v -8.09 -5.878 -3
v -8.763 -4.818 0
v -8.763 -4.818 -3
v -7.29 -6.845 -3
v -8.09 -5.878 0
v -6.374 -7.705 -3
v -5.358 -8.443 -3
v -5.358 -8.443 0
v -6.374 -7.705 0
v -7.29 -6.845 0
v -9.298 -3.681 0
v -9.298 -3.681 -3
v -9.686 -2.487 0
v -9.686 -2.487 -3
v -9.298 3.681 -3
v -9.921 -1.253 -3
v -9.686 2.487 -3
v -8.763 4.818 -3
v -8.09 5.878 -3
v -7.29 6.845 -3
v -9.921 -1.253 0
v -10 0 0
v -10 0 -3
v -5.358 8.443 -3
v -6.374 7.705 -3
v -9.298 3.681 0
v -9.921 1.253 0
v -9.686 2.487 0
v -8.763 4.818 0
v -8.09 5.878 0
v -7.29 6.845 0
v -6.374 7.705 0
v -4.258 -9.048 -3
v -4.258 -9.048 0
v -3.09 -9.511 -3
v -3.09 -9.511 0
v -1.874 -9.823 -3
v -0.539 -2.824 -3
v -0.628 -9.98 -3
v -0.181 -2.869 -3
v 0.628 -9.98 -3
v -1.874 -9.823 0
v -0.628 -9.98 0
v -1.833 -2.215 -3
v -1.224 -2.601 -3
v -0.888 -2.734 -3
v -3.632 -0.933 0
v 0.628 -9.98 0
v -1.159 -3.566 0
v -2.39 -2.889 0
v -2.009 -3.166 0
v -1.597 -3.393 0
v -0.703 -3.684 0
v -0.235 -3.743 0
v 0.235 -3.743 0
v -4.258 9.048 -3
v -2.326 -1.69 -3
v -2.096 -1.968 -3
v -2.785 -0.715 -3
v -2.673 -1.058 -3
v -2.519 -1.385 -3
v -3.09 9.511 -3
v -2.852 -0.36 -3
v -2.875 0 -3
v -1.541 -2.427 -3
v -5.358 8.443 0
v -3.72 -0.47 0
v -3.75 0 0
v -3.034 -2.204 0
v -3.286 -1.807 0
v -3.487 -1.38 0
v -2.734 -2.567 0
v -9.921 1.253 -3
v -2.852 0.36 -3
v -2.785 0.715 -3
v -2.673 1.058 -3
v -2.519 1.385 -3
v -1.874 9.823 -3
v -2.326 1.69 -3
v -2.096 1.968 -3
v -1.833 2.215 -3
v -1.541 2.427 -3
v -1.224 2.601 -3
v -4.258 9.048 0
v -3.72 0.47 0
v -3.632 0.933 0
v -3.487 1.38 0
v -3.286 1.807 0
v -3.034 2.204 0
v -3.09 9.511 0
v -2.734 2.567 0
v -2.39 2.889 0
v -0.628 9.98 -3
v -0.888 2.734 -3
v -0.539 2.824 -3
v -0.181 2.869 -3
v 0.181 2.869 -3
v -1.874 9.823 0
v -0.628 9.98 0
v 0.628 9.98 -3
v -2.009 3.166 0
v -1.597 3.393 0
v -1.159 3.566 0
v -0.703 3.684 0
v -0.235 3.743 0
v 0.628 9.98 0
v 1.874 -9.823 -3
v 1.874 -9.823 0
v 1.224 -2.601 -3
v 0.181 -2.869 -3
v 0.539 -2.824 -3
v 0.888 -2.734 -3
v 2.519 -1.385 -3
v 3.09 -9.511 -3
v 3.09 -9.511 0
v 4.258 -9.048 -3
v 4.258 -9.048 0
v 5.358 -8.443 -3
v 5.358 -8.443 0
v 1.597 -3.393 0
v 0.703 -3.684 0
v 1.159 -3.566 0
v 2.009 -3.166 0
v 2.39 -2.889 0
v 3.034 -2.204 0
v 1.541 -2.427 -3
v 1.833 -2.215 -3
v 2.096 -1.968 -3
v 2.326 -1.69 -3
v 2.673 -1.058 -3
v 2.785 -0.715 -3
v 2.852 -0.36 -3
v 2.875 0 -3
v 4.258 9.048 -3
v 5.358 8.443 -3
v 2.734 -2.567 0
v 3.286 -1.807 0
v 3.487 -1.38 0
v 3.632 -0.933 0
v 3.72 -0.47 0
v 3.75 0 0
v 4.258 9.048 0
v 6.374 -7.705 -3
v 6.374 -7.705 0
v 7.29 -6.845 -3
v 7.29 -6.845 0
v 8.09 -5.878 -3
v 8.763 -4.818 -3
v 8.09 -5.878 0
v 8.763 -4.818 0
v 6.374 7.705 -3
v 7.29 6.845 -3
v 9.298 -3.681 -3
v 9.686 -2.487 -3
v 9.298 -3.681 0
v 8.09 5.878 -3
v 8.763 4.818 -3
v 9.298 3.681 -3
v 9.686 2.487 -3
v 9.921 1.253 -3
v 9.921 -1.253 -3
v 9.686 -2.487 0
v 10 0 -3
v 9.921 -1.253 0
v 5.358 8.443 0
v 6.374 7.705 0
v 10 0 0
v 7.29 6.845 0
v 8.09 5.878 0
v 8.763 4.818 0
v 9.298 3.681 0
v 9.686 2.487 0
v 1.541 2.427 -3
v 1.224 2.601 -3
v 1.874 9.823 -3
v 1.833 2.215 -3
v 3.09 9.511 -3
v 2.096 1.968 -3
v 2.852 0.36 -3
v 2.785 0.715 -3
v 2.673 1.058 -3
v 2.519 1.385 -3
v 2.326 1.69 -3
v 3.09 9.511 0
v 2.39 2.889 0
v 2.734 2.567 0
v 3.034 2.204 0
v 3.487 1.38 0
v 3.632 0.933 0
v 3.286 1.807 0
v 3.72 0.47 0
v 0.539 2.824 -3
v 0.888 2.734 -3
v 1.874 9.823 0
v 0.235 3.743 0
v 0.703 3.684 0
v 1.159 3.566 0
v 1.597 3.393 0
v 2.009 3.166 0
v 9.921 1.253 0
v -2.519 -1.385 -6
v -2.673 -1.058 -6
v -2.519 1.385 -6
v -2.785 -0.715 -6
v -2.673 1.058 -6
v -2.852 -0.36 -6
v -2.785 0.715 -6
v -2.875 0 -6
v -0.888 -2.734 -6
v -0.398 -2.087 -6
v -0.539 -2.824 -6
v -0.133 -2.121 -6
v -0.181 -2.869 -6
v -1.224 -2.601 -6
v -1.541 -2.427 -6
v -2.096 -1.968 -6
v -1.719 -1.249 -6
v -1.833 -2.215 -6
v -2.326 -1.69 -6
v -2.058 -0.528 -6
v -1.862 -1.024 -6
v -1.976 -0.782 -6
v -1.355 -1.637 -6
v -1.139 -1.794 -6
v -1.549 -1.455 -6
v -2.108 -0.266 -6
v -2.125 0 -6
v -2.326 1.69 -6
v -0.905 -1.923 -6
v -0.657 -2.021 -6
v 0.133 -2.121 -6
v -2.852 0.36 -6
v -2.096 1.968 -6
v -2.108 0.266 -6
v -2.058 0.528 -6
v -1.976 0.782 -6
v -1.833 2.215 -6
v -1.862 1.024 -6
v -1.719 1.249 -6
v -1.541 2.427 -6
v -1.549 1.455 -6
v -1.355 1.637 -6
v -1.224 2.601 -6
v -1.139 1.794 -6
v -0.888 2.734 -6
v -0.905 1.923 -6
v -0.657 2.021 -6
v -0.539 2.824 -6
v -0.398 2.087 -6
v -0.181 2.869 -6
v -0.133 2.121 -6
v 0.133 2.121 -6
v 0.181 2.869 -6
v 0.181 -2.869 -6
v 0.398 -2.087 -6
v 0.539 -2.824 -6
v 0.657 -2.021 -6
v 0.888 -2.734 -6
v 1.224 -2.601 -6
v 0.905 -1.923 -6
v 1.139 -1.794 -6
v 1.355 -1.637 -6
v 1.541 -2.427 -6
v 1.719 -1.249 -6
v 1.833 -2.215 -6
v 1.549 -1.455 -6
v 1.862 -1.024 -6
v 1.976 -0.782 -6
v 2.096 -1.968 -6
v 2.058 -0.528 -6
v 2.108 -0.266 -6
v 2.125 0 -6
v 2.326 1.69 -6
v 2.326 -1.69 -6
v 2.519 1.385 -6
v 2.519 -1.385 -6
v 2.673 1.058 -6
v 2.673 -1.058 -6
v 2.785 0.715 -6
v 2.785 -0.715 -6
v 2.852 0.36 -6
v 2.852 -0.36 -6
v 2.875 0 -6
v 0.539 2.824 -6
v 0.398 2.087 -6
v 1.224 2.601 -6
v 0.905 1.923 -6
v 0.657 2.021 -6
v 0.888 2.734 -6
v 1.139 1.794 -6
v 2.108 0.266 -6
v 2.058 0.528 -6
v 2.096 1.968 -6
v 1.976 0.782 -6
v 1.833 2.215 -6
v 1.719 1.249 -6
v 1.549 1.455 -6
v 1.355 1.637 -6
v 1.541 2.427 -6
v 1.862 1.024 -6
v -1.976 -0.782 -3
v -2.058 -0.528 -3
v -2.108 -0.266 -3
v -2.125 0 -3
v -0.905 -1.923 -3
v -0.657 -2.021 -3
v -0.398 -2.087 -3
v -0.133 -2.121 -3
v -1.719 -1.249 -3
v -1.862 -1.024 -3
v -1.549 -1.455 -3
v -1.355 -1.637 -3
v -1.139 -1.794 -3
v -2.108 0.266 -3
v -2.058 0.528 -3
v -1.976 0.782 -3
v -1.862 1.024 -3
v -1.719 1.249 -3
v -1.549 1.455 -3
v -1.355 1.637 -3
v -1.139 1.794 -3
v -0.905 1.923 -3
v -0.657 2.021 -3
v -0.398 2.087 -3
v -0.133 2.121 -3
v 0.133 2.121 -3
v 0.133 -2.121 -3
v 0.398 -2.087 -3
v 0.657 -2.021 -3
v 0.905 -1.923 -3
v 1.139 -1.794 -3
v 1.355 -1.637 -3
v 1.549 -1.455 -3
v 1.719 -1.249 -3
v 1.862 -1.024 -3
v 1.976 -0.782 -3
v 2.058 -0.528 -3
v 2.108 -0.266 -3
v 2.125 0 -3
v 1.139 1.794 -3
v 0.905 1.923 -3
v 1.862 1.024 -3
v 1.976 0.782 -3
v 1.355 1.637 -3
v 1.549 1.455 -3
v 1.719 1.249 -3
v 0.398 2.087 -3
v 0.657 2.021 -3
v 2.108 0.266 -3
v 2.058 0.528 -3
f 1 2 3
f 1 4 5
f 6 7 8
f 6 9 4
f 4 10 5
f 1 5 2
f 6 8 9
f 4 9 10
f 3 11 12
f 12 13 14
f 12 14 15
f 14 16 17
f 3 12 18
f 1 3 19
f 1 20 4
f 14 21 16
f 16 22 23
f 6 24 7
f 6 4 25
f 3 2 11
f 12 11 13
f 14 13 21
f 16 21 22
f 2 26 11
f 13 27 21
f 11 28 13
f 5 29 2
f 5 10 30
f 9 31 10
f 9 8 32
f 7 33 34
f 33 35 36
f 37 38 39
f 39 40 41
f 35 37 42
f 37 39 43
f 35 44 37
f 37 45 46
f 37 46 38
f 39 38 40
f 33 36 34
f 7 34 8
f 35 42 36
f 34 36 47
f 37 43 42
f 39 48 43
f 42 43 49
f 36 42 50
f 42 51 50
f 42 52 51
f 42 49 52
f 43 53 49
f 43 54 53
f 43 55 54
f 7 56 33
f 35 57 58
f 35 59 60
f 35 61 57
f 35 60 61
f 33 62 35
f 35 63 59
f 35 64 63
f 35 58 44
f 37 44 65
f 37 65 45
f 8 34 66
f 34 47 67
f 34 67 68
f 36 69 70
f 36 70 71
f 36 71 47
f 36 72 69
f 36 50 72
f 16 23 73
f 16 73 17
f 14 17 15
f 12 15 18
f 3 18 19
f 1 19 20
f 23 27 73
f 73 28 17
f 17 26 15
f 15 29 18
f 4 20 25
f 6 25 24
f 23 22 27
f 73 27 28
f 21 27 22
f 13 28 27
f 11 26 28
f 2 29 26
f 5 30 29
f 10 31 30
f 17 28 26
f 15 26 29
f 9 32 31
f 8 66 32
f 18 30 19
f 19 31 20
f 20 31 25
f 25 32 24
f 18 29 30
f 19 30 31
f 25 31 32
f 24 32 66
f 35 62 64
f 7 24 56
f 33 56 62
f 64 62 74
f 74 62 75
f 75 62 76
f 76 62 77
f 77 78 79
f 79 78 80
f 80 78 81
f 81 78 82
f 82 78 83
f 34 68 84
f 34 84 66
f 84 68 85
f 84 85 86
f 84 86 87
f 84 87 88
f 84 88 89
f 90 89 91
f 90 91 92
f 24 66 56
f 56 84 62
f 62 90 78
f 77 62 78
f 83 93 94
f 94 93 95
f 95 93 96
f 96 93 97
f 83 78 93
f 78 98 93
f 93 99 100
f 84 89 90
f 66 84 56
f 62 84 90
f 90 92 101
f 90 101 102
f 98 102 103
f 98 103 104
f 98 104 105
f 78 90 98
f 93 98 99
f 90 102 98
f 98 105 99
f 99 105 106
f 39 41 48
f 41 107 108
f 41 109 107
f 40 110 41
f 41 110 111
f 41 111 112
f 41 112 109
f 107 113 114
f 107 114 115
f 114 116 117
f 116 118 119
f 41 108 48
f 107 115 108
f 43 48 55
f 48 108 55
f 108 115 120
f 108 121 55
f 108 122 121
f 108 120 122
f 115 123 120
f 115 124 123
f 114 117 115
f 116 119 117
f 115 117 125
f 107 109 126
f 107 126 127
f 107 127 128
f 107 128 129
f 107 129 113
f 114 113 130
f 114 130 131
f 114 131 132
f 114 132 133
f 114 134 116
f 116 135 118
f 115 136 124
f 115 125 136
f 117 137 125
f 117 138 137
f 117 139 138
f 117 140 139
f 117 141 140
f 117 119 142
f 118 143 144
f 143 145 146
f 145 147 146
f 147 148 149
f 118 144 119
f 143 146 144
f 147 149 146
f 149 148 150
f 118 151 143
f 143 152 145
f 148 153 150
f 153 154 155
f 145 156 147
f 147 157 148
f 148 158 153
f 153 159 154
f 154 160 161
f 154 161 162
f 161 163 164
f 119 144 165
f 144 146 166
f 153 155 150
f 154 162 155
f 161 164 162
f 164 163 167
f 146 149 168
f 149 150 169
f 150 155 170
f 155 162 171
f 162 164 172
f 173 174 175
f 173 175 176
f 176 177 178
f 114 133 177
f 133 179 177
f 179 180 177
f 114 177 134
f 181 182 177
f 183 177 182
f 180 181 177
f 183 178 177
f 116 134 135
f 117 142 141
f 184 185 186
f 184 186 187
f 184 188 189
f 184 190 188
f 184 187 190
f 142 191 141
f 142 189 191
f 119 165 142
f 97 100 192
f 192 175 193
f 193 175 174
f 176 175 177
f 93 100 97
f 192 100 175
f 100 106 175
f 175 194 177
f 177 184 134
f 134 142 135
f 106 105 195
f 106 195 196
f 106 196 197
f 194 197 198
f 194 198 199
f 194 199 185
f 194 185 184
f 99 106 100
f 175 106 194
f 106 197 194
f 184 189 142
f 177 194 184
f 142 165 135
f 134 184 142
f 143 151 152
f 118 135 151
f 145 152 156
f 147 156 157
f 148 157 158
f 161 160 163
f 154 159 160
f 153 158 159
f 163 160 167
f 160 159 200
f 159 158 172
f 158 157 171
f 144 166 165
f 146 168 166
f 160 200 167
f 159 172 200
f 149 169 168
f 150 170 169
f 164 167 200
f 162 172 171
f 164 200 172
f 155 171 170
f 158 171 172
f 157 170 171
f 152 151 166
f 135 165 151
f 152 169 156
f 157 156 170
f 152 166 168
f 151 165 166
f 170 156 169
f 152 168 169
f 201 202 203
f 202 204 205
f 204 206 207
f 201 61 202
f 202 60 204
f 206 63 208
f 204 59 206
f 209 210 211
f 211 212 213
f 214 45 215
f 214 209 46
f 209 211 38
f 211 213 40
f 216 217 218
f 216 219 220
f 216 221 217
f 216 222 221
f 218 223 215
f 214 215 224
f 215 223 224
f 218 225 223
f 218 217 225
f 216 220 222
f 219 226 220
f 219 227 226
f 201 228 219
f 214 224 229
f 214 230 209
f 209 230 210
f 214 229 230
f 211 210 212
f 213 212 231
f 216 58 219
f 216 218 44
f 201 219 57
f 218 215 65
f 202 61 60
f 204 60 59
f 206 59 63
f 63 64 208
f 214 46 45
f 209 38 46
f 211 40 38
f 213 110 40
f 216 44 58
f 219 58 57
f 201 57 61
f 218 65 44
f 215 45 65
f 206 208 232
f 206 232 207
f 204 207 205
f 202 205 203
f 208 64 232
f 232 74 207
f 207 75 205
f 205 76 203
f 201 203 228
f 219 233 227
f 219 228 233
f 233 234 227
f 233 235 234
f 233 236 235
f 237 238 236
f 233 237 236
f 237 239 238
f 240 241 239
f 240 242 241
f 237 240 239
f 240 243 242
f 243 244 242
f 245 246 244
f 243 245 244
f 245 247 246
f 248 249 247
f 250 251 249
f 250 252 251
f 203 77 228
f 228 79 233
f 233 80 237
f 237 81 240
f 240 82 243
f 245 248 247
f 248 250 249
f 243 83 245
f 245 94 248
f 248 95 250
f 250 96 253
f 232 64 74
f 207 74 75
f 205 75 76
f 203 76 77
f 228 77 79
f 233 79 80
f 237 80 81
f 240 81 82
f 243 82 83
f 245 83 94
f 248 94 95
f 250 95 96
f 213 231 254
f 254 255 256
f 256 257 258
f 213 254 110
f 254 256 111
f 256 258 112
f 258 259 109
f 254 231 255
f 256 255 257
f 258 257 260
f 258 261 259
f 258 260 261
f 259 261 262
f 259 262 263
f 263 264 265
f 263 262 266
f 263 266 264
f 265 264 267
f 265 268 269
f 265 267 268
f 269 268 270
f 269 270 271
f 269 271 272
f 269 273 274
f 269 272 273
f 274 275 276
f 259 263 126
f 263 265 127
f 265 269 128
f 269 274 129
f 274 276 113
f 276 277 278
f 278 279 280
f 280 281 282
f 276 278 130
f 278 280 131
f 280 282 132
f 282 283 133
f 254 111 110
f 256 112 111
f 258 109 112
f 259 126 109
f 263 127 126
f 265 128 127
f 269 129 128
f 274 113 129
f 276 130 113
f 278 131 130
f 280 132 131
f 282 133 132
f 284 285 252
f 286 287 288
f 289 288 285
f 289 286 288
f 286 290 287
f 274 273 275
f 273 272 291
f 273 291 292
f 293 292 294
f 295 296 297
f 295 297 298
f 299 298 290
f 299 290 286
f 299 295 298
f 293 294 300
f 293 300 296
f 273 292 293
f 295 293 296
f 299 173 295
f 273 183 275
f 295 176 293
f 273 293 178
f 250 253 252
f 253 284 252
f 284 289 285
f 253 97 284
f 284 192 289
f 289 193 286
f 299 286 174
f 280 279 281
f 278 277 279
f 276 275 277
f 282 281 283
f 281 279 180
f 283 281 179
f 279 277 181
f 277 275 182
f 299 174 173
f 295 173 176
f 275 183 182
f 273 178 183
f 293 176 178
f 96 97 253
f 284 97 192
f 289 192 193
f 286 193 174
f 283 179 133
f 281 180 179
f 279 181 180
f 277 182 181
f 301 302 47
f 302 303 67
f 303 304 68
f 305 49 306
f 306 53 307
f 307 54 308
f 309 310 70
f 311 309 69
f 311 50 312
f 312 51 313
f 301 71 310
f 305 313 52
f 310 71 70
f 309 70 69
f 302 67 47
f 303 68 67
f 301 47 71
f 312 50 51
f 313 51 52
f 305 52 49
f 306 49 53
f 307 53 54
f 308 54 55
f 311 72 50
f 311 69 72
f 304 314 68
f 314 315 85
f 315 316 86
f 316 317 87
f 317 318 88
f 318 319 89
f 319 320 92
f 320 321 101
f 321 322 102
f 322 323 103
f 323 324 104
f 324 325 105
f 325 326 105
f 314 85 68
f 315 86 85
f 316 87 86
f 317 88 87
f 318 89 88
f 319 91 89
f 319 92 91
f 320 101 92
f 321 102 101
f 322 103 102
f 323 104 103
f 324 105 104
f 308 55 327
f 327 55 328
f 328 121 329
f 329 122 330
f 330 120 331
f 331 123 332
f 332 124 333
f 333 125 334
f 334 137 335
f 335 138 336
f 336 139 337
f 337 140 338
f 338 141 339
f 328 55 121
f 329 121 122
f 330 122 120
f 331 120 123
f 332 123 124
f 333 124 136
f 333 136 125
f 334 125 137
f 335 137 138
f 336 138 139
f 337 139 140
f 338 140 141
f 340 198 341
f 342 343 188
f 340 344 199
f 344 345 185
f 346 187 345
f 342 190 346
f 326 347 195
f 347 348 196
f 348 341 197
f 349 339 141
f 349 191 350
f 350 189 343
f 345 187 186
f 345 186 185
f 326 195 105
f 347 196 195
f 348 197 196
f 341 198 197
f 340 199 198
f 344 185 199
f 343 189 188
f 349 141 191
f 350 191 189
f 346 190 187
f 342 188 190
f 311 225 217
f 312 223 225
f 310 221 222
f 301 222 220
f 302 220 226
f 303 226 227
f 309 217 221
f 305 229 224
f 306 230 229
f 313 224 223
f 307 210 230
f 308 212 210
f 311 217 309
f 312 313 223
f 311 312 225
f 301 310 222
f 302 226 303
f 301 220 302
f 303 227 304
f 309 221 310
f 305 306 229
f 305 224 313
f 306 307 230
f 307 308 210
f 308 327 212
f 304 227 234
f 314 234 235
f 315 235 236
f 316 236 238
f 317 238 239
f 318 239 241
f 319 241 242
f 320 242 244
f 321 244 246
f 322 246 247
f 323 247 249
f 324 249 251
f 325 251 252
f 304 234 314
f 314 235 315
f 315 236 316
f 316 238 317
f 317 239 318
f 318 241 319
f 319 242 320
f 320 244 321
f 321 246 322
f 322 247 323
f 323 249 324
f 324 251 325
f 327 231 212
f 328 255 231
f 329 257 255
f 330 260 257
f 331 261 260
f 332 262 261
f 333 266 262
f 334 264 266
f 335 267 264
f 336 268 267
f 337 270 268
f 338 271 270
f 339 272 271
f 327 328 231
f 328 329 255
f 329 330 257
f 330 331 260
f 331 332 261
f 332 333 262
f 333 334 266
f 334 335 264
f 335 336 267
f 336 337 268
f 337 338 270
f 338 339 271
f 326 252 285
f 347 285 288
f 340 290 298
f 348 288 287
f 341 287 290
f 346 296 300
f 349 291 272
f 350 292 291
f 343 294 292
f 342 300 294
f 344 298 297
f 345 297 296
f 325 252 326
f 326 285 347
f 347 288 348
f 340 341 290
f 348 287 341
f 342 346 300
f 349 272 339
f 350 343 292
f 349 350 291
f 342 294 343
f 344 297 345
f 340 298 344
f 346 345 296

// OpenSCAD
$fn = 50;

difference() {
	union() {
		translate(v = [0, 0, -3.0]) {
			cylinder(h = 3, r = 10.0);
		}
		#translate(v = [0, 0, -6.0]) {
			cylinder(h = 6, r = 2.875);
		}
	}
	union() {
		translate(v = [0, 0, 0]) {
			rotate(a = [0, 0, 0]) {
				difference() {
					union() {
						translate(v = [0, 0, -6.0]) {
							cylinder(h = 6, r = 2.0);
						}
						translate(v = [0, 0, -3]) {
							cylinder(h = 3, r1 = 2.125, r2 = 3.75);
						}
						translate(v = [0, 0, -6.0]) {
							cylinder(h = 6, r = 2.125);
						}
						translate(v = [0, 0, -6.0]) {
							cylinder(h = 6, r = 2.0);
						}
					}
					union();
				}
			}
		}
	}
}
